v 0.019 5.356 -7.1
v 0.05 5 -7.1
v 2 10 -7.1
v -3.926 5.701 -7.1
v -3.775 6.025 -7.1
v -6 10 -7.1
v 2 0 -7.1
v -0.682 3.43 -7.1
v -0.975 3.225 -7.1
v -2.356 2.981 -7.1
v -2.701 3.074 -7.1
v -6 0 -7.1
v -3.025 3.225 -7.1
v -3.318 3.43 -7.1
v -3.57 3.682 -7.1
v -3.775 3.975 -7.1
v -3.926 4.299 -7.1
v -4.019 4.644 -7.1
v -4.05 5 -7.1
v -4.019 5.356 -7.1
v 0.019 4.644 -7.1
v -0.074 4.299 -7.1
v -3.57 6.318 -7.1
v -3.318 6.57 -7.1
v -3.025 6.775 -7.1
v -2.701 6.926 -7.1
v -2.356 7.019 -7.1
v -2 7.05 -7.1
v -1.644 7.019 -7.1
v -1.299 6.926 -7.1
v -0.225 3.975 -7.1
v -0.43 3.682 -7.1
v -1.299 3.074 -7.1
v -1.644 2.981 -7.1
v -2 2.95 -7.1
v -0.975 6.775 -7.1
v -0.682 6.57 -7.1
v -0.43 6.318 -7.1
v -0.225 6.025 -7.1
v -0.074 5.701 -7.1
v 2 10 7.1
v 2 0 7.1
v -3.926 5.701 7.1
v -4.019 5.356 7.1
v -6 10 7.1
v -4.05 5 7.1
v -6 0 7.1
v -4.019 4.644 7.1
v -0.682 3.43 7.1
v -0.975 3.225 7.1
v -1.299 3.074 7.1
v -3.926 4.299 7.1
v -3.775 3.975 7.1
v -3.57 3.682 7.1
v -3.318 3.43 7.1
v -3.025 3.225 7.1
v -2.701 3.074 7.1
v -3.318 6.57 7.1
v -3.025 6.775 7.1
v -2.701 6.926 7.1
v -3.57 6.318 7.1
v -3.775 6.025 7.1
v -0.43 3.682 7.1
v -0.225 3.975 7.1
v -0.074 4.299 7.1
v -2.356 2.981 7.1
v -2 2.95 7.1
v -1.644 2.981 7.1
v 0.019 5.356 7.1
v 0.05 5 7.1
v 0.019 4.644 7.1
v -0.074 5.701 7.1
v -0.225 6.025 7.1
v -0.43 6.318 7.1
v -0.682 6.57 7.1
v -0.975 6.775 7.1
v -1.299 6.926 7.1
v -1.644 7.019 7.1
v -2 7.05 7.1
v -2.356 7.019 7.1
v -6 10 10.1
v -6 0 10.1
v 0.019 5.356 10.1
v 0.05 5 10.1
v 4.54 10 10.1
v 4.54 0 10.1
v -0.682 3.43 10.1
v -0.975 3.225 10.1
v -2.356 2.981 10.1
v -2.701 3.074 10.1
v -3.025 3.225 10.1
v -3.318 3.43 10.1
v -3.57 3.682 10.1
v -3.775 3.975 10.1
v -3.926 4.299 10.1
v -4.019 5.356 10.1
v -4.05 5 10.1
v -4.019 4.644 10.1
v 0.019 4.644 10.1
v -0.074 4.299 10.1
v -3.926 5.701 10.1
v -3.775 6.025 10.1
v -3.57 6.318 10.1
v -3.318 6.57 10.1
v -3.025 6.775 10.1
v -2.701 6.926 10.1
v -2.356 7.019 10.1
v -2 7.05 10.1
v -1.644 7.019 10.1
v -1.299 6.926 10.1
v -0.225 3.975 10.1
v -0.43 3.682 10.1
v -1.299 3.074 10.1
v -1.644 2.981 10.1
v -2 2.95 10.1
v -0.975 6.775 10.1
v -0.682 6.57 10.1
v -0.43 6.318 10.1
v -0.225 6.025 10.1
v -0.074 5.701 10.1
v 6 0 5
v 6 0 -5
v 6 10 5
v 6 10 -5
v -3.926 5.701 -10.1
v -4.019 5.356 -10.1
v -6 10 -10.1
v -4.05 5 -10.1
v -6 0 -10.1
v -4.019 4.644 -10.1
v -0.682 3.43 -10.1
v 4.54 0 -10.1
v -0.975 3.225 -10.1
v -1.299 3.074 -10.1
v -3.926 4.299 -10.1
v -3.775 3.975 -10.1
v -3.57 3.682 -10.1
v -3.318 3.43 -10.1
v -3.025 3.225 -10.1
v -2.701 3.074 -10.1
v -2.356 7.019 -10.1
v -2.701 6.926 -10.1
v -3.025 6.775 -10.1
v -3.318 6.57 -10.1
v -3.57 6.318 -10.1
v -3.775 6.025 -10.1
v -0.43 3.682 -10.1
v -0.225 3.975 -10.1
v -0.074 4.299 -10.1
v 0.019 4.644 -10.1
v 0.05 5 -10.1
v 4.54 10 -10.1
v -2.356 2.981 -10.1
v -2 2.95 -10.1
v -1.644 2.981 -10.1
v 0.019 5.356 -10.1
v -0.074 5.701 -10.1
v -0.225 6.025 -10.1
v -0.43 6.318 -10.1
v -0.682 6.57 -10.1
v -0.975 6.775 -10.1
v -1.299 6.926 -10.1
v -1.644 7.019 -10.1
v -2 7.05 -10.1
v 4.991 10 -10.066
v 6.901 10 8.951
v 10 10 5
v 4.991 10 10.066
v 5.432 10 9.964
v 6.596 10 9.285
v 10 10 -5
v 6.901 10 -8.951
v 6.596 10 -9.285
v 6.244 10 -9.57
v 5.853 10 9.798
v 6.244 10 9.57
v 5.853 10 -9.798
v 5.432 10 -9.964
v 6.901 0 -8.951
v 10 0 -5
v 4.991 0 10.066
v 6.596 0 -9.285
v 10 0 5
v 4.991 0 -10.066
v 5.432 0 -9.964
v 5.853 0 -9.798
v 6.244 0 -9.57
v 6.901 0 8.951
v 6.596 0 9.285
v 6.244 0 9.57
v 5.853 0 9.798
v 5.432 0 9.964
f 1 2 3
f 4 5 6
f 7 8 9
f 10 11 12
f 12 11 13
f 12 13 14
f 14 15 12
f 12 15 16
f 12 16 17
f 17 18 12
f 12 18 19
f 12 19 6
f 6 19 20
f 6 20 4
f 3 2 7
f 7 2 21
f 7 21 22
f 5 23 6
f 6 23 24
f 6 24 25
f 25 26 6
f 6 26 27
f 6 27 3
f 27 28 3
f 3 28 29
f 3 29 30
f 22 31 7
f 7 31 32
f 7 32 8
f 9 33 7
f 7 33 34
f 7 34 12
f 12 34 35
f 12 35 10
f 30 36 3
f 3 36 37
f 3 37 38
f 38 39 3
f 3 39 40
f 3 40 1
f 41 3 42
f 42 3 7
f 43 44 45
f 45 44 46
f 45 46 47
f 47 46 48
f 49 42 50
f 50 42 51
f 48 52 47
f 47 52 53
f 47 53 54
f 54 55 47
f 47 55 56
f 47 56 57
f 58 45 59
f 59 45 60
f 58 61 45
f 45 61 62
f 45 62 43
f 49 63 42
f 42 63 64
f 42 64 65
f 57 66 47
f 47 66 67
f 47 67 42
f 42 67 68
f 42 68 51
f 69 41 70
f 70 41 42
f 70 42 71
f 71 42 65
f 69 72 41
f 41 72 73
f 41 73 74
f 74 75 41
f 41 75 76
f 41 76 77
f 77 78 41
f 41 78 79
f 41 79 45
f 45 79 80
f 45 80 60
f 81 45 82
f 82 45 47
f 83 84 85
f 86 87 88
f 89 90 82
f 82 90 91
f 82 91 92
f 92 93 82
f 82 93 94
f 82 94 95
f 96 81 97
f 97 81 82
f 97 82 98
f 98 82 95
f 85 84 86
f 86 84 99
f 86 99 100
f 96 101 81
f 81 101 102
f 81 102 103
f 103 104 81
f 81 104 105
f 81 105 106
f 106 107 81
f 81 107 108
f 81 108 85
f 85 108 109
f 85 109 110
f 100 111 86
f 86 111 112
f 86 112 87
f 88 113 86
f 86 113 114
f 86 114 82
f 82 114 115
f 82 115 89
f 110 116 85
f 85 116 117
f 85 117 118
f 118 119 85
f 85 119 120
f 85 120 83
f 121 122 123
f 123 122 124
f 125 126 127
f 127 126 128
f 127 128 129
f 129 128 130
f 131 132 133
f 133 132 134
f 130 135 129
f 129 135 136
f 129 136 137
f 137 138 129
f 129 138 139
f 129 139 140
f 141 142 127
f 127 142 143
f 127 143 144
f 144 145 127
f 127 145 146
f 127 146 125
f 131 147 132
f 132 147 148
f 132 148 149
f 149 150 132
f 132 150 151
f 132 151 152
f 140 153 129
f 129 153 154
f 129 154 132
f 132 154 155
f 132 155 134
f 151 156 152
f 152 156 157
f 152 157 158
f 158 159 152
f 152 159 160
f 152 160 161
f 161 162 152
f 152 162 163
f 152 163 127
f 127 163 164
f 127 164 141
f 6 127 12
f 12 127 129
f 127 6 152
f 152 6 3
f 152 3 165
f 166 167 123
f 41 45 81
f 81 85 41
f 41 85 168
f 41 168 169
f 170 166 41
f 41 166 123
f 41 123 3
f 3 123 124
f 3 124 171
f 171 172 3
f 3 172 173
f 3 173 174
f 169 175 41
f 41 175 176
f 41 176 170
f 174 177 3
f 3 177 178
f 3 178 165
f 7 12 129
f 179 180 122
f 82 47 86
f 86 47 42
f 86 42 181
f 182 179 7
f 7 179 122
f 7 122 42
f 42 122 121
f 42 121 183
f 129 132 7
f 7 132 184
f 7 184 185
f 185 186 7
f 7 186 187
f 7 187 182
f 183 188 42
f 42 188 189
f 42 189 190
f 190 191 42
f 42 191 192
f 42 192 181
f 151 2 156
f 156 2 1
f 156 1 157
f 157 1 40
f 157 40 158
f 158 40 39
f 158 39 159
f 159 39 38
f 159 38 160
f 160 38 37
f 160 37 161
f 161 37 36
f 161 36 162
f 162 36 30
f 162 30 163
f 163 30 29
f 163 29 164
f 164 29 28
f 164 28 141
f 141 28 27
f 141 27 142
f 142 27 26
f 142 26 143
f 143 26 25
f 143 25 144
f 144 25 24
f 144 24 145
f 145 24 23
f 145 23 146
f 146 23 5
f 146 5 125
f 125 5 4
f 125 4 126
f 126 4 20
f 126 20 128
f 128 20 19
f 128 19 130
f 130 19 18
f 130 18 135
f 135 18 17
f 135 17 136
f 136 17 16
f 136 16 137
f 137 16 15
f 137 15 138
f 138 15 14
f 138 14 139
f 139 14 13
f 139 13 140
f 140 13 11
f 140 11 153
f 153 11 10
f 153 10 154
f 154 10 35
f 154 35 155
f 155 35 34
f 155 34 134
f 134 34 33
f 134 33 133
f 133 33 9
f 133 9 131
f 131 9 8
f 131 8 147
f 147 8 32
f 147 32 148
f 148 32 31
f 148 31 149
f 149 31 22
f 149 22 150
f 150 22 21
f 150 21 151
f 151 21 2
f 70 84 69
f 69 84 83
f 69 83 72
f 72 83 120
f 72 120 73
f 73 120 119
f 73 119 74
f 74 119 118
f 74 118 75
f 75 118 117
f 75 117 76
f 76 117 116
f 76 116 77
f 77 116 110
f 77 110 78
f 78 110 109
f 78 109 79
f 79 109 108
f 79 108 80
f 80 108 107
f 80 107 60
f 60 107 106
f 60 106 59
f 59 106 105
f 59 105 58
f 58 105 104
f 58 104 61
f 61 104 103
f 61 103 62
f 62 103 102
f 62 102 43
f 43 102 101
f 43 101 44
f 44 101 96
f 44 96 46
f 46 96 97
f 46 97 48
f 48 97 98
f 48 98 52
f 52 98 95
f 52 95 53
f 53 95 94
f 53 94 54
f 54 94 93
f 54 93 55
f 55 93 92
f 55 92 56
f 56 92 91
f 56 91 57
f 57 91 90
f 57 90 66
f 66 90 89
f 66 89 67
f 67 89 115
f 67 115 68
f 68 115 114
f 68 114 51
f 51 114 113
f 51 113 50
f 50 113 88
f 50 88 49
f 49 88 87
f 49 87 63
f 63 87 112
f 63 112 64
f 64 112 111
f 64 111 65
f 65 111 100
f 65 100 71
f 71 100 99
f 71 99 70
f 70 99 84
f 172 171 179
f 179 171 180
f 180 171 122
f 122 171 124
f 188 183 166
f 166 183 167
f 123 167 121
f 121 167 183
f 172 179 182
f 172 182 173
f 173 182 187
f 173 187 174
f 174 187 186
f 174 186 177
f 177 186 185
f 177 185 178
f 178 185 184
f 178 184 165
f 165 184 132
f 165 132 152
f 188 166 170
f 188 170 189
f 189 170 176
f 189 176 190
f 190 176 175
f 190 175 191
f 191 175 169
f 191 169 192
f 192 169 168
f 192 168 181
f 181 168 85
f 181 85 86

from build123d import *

# Parameters (mm, degrees)
BOSS_EXTRUDE1_DEPTH     = 10
CUT_EXTRUDE1_DEPTH      = 21.780760333
CUT_EXTRUDE1_DEPTH_BACK = 21.780760333
BOSS_EXTRUDE2_DEPTH     = 10
FILLET1_R               = 3


with BuildPart() as part:
    # Sketch1 → Boss-Extrude1 (new body)
    with BuildSketch(Plane(origin=(0, 0, 0), x_dir=(1, 0, 0), z_dir=(0, 1, 0))):
        Polygon((-6, -10.1), (6, -10.1), (6, 10.1), (-6, 10.1), (-6, 7.1), (2, 7.1), (2, -7.1), (-6, -7.1), align=None)
    extrude(amount=BOSS_EXTRUDE1_DEPTH)

    # Sketch2 → Cut-Extrude1 (cut, two sides: drawn at the far end of the back side and taken through both)
    with BuildSketch(Plane.XY.offset(-7.1).offset(-CUT_EXTRUDE1_DEPTH_BACK)):
        with BuildLine():
            ThreePointArc((-3.280624847, 6.600781059), (-3.600781059, 3.719375153), (-0.719375153, 3.399218941))
            Line((-0.719375153, 3.399218941), (-3.280624847, 6.600781059))
        make_face()
        with BuildLine():
            Line((-3.280624847, 6.600781059), (-0.719375153, 3.399218941))
            ThreePointArc((-0.719375153, 3.399218941), (-0.152328366, 4.111963102), (0.05, 5))
            ThreePointArc((0.05, 5), (-1.111963102, 6.847671634), (-3.280624847, 6.600781059))
        make_face()
    extrude(amount=CUT_EXTRUDE1_DEPTH + CUT_EXTRUDE1_DEPTH_BACK, mode=Mode.SUBTRACT)

    # Sketch3 → Boss-Extrude2 (add)
    with BuildSketch(Plane(origin=(0, 10, 0), x_dir=(1, 0, 0), z_dir=(0, 1, 0))):
        Polygon((10, 5), (6, 10.1), (6, 5), align=None)
        Polygon((6, -10.1), (10, -5), (6, -5), align=None)
    extrude(amount=-BOSS_EXTRUDE2_DEPTH)

    # Fillet1
    fillet1_edges = [part.edges().sort_by_distance(p)[0] for p in [
        (6, 5, -10.1),
        (6, 5, 10.1),
    ]]
    fillet(fillet1_edges, radius=FILLET1_R)


solid = part.part
